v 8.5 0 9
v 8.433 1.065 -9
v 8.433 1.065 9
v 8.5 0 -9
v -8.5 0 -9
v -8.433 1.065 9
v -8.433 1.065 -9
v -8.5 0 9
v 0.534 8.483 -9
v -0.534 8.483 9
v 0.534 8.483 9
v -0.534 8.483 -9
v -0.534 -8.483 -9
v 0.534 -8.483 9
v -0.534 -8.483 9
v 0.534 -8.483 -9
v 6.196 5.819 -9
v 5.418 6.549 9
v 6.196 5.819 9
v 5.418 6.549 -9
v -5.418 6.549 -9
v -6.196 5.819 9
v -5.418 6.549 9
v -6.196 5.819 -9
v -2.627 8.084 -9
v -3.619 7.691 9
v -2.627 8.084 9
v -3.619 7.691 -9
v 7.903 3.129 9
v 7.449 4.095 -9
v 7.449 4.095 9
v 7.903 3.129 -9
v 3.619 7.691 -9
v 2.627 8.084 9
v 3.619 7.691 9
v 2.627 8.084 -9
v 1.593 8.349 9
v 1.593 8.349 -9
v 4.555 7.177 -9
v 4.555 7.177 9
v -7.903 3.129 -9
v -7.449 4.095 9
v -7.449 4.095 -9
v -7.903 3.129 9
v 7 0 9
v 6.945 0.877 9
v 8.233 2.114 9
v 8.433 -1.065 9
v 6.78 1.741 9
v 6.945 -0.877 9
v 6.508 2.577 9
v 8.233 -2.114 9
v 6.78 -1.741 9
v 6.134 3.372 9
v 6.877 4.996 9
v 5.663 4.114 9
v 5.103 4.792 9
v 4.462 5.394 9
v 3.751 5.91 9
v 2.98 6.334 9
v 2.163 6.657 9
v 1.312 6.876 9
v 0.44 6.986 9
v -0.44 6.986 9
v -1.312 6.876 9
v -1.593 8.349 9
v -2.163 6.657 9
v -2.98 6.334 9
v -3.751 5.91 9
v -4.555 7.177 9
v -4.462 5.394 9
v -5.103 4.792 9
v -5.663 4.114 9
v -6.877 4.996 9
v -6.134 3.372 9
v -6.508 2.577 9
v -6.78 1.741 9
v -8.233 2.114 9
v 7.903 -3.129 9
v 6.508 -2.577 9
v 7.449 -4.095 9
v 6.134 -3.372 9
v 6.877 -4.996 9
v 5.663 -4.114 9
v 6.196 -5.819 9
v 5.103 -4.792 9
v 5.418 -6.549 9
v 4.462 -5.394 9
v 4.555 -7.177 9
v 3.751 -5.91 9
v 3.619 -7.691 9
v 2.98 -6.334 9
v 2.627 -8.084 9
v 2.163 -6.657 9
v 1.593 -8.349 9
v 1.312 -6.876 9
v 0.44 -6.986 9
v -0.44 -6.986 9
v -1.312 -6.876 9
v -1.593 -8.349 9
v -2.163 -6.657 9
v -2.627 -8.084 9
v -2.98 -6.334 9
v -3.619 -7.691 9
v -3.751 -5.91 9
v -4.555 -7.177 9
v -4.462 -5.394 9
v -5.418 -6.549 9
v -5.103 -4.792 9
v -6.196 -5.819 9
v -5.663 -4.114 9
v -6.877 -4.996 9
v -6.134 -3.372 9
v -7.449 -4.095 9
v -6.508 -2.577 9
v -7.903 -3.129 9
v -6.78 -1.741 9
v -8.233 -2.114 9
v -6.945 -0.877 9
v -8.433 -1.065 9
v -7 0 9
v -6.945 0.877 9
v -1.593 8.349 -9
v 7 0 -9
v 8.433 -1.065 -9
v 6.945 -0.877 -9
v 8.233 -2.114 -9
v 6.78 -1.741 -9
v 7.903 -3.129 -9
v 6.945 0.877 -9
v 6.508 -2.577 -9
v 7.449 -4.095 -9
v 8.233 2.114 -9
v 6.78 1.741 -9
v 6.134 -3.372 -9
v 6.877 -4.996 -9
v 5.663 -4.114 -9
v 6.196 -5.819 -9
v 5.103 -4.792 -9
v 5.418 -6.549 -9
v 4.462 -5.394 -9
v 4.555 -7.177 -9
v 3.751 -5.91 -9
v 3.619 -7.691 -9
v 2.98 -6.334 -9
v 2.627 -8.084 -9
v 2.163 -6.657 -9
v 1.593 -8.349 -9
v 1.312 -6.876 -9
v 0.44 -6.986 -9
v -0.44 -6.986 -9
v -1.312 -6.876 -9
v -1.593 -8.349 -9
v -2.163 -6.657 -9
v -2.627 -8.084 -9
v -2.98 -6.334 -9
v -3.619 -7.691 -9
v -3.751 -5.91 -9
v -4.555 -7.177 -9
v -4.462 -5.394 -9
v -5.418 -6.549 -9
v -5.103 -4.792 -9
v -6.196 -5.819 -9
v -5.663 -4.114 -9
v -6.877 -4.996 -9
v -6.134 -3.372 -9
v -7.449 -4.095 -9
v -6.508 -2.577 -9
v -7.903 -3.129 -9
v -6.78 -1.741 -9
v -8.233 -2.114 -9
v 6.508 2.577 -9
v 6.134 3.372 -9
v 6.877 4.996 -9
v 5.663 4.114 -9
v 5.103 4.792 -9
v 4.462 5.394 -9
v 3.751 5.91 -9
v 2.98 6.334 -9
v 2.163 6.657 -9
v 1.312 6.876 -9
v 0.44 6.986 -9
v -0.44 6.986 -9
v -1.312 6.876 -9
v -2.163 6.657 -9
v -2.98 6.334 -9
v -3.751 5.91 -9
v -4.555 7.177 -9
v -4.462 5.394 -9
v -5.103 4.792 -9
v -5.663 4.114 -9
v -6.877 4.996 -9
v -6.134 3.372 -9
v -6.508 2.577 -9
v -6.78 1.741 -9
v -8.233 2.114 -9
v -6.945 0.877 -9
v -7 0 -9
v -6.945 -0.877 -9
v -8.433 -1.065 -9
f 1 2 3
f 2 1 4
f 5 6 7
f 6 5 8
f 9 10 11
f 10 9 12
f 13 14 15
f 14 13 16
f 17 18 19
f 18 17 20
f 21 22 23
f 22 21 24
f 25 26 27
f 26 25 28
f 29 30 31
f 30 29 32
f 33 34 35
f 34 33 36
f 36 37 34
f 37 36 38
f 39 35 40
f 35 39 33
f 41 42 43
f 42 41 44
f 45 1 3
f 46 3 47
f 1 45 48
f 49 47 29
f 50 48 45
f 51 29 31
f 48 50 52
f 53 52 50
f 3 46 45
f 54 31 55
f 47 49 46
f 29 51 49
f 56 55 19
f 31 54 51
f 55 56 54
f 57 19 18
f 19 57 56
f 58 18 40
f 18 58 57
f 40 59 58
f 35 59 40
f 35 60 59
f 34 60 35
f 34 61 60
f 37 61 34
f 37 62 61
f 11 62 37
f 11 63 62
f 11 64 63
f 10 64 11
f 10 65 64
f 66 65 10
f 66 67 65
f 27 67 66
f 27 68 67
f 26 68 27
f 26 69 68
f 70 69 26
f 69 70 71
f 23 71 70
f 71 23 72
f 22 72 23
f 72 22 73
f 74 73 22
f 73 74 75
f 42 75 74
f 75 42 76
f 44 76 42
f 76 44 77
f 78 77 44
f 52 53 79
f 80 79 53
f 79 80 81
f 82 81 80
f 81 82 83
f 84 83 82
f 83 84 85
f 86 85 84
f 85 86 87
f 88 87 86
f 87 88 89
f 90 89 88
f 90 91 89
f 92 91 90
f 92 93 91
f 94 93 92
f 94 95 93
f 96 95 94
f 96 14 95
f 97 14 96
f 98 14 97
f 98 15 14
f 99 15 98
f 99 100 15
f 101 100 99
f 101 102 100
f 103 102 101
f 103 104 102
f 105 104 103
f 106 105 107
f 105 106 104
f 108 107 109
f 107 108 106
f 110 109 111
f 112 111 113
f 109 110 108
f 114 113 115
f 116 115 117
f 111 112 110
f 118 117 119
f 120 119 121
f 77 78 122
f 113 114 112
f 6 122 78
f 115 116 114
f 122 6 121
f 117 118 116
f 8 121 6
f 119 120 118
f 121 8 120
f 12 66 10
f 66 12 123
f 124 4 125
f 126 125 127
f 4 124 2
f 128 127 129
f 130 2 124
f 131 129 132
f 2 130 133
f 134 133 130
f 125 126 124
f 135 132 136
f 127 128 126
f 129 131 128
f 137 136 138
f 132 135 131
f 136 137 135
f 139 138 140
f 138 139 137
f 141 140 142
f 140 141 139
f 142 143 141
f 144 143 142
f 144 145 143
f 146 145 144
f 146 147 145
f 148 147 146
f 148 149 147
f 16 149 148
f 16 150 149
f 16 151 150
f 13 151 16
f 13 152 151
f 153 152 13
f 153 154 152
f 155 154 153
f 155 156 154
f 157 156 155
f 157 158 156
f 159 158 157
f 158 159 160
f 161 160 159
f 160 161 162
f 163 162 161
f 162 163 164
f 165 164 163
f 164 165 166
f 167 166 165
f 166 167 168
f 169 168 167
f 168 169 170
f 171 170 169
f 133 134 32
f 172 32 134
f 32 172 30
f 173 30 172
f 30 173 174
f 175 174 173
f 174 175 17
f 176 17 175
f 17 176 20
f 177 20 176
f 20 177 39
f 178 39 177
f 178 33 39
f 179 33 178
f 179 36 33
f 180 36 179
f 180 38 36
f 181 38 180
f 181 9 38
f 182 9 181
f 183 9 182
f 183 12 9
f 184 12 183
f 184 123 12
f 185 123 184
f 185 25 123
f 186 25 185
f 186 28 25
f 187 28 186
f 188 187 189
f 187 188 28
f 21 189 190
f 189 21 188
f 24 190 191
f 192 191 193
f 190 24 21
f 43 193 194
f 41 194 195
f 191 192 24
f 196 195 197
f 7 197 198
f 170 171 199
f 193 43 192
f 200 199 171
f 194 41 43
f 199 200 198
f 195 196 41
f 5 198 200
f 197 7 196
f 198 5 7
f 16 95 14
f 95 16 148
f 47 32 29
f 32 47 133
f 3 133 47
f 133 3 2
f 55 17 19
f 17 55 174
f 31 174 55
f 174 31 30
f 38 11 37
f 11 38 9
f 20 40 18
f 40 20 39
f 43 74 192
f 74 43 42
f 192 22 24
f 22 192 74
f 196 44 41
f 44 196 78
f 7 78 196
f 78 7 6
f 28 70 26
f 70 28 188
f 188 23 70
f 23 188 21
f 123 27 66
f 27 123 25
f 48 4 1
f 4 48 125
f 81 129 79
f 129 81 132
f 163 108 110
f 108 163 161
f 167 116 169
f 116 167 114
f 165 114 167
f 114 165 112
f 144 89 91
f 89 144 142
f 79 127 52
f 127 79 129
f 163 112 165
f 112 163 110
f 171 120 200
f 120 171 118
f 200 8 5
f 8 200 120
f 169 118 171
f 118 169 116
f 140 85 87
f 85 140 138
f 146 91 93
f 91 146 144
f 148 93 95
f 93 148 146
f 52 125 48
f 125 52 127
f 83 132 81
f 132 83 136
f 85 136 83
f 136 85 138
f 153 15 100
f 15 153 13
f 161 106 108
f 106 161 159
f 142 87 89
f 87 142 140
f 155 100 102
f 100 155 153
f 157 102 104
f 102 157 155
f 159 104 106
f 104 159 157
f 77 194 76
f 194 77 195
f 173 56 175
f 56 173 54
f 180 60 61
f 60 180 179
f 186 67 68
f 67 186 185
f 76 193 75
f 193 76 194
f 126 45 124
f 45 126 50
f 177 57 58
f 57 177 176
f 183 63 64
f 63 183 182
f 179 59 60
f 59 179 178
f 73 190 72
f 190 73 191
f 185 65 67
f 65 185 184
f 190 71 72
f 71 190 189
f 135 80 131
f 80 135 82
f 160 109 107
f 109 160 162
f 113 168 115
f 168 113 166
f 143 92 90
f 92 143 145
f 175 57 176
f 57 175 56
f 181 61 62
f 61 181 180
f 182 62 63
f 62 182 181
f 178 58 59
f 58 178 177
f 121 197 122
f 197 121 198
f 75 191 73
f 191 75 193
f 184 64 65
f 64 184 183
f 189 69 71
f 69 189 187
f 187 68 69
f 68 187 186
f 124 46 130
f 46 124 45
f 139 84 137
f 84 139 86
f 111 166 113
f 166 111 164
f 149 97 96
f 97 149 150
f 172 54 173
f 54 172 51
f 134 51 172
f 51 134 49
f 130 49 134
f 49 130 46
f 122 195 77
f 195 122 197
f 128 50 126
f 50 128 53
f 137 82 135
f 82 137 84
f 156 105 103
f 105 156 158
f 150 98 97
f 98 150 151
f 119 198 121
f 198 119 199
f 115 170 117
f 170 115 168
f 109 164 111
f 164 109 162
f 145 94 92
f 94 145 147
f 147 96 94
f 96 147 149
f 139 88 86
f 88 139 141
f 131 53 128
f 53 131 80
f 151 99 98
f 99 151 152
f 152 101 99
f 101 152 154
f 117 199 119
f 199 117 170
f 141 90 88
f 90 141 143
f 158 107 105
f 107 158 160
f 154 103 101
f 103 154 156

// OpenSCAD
$fn = 50;


difference() {
	union() {
		translate(v = [0, 0, -9.0000000000]) {
			cylinder(h = 18, r = 8.5000000000);
		}
	}
	union() {
		translate(v = [0, 0, -100.0000000000]) {
			cylinder(h = 200, r = 7);
		}
	}
}
